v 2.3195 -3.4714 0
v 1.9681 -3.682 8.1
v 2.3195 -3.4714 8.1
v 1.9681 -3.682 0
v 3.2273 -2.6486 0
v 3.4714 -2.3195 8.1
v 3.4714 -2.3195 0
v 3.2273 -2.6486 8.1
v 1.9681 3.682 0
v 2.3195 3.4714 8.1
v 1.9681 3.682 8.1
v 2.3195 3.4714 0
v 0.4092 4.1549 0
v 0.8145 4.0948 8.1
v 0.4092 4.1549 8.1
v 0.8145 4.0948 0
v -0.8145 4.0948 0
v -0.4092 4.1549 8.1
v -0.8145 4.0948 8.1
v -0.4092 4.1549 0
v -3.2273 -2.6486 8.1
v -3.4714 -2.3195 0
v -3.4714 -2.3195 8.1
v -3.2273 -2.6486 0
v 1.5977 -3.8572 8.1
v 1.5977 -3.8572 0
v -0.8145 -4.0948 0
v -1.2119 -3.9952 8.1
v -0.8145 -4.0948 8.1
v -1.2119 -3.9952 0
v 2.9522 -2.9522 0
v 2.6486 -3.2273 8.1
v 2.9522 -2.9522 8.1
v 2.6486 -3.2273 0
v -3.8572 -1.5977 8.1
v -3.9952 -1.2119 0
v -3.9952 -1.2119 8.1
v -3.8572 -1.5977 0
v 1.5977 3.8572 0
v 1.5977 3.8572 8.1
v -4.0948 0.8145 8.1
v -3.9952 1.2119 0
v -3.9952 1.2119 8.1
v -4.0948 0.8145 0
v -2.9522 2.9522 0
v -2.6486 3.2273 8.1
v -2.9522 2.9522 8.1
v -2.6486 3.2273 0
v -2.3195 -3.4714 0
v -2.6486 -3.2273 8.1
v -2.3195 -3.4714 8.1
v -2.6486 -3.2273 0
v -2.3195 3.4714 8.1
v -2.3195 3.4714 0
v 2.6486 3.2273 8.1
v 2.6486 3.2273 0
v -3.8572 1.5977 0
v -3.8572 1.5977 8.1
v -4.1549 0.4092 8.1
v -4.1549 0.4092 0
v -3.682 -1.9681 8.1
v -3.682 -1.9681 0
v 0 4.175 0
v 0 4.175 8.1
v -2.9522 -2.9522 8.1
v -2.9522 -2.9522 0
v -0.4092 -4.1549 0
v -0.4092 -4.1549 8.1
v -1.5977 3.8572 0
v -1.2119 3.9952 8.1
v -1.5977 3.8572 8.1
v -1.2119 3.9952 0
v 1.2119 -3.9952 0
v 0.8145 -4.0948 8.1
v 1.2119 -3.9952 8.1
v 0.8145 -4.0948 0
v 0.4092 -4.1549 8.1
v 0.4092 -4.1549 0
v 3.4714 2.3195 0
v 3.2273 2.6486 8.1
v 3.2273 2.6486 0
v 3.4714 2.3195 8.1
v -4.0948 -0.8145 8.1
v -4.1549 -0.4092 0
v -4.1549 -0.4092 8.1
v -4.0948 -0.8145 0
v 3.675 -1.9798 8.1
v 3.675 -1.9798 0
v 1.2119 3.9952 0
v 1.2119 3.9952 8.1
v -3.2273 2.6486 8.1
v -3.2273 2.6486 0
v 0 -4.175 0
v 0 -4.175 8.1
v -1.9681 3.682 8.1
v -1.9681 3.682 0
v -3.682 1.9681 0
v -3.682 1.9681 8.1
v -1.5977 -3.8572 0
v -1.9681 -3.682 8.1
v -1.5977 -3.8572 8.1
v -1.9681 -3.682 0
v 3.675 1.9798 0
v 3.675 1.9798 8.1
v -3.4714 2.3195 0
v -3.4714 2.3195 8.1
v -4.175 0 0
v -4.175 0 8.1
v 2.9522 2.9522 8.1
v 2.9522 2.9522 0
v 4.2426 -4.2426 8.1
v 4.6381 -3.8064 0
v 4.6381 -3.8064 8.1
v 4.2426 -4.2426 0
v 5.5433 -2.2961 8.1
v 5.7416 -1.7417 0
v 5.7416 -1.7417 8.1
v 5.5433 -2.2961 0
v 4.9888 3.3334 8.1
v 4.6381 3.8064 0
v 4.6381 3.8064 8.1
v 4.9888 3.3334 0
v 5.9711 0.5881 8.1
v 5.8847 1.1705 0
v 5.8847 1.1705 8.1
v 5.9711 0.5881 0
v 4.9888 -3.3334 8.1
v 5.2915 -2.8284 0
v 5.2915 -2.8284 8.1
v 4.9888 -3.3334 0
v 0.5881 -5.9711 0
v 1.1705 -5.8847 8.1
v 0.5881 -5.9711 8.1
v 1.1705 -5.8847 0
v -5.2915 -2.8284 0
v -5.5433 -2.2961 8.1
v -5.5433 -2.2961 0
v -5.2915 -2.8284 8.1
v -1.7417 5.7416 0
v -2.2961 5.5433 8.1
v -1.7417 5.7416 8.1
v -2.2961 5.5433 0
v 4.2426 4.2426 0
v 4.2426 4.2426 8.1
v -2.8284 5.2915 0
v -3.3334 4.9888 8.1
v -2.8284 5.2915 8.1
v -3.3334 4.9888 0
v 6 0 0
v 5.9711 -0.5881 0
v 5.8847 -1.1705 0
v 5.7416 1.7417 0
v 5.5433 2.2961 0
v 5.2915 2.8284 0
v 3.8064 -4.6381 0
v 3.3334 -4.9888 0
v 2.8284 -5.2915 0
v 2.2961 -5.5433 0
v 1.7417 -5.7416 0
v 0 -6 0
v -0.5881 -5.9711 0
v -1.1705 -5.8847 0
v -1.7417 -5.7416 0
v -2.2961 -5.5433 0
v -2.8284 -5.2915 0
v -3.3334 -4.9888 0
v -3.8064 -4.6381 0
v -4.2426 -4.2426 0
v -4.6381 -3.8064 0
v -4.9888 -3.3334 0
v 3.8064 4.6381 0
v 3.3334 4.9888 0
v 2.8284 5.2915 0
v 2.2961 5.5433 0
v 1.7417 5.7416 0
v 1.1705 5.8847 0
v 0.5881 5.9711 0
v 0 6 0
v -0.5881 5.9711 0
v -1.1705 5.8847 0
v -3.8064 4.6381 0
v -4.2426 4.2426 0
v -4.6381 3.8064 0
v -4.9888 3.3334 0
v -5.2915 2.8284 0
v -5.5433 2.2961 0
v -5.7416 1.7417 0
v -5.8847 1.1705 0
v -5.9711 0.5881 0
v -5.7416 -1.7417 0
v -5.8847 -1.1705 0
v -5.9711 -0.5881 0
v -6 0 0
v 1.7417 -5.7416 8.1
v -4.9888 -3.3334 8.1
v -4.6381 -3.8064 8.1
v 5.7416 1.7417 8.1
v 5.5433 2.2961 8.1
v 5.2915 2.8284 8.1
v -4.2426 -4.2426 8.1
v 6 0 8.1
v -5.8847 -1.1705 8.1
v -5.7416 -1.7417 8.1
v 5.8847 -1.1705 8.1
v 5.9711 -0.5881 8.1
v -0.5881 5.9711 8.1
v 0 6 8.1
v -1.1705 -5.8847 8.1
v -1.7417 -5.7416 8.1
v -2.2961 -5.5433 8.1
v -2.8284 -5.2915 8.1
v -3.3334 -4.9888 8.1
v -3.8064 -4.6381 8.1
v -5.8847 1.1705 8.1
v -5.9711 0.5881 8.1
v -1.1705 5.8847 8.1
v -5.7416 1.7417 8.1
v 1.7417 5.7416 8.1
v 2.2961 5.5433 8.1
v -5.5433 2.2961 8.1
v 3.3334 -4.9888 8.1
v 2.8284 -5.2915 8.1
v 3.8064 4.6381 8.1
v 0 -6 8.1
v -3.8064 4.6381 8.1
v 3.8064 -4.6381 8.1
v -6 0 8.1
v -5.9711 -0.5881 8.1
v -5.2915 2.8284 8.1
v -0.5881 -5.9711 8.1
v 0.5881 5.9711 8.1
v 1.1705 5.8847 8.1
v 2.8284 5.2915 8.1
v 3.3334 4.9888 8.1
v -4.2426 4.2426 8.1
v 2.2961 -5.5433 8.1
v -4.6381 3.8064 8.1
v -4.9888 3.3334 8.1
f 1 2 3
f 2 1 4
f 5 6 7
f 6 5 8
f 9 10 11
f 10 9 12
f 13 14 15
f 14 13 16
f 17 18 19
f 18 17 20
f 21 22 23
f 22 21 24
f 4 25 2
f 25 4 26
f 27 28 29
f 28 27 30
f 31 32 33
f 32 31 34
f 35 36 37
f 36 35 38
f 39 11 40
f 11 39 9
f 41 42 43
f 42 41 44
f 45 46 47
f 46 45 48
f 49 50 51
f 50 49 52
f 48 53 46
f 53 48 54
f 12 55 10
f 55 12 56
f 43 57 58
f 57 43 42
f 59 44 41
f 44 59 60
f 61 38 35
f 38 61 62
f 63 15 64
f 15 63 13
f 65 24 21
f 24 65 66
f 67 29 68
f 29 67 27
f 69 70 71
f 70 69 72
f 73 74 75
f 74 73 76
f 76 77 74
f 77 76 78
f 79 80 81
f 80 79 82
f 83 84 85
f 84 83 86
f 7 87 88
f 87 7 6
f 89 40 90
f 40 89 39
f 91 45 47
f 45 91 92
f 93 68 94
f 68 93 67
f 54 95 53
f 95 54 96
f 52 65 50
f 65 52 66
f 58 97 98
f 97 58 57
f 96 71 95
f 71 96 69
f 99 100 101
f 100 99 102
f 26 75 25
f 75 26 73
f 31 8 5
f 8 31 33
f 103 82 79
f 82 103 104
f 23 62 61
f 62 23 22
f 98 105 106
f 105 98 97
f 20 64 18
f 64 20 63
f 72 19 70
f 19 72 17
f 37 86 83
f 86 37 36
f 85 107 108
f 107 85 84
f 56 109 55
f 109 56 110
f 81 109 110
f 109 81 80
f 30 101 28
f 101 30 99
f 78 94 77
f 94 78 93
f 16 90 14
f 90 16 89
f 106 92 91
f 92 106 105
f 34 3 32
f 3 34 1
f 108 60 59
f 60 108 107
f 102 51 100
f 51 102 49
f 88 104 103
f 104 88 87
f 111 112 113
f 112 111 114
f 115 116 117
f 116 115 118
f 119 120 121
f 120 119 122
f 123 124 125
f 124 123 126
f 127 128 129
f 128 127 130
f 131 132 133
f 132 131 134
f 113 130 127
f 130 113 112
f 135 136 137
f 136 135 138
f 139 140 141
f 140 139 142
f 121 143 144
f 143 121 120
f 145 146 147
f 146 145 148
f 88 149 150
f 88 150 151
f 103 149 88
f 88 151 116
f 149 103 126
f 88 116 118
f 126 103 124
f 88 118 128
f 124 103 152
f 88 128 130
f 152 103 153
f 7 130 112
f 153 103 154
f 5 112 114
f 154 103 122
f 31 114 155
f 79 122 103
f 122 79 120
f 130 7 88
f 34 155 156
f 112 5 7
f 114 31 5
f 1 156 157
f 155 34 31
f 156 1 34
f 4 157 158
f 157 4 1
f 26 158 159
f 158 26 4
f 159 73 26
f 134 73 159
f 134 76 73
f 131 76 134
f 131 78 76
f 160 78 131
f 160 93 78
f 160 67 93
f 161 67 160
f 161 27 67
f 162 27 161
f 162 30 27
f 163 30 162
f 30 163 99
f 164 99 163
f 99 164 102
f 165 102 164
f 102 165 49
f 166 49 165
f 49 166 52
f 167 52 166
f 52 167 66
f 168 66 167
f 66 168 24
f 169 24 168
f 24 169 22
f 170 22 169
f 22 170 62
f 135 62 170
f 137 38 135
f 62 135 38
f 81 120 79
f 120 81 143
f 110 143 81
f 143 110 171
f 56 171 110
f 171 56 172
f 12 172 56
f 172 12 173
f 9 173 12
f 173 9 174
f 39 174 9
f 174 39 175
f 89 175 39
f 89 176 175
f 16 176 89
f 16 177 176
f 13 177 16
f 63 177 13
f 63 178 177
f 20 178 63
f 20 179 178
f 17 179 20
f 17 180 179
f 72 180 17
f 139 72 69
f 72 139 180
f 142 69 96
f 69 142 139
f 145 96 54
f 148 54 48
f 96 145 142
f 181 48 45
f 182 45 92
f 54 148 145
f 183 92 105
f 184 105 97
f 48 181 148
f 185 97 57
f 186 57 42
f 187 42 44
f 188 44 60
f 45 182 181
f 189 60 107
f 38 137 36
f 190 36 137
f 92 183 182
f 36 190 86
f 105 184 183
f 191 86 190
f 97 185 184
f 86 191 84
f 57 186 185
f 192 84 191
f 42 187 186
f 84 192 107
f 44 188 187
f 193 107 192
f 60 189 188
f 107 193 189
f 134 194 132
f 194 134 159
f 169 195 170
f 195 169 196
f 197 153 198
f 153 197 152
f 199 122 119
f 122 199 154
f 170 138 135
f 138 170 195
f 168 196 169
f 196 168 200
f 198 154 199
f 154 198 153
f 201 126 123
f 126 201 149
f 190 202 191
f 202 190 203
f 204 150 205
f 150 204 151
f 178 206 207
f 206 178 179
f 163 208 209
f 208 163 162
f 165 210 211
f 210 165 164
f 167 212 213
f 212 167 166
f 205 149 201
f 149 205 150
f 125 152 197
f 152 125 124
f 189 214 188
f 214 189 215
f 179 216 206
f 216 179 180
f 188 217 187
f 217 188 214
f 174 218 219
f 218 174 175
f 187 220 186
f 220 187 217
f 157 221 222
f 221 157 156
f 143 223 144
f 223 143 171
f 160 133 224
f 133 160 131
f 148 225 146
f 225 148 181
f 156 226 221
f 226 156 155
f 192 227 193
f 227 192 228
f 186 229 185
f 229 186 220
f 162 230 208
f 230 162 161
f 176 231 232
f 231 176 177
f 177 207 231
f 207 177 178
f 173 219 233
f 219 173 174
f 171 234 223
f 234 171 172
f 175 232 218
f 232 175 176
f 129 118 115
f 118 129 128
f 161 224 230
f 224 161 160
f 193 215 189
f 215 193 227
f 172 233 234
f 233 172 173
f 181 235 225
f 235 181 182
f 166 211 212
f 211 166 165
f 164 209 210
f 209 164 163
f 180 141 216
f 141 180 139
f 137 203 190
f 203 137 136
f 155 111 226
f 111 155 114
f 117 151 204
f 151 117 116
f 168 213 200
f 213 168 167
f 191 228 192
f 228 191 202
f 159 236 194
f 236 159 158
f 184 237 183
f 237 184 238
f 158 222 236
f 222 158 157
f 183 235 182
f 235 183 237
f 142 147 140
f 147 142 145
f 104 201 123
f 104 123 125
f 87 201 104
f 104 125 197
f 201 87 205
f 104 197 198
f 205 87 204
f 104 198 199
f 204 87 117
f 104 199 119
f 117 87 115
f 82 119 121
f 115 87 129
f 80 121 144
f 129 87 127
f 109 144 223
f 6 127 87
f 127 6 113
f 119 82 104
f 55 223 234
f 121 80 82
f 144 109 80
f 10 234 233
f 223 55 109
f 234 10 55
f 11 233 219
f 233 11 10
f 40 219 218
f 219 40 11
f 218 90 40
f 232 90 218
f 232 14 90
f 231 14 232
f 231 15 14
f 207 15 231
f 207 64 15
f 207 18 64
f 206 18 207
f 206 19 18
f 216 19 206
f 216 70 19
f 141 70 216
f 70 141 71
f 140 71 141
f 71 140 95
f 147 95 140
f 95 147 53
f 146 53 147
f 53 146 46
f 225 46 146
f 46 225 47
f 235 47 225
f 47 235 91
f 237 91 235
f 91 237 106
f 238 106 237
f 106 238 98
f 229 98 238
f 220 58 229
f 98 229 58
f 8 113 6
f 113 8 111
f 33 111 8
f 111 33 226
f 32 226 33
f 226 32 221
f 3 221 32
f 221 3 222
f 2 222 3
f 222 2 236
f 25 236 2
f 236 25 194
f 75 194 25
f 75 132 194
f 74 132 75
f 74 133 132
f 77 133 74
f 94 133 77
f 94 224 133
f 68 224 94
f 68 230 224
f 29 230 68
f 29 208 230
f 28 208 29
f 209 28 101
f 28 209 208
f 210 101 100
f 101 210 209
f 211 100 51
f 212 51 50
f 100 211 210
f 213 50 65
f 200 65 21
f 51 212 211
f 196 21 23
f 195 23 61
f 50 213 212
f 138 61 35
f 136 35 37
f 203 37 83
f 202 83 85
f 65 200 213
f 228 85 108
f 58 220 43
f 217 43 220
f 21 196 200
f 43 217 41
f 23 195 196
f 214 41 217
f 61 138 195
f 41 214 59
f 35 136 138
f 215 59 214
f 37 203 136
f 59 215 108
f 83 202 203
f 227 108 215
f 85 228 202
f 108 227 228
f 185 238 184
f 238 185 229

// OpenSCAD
// Gen-DE — gap sleeve: rigid spacer on the shaft BETWEEN the two rotor carriers (passes through the stator
// hole). Length = m2m, so it sets the magnet gap and carries the full magnet pull. Print x1, upright.
include <parameters.scad>;
$fn = 64;
// D-flat keyed bore: flat faces +X (angle 0 = magnet pocket 0 = index notch)
module dflat_bore(h) {
    intersection() {
        cylinder(d=shaft_bore, h=h);
        translate([-shaft_bore, -shaft_bore, 0]) cube([shaft_bore + dflat_x, 2*shaft_bore, h]);
    }
}

difference() {
    cylinder(d=sleeve_od, h=m2m);
    translate([0, 0, -0.1]) dflat_bore(m2m + 0.2);
}
